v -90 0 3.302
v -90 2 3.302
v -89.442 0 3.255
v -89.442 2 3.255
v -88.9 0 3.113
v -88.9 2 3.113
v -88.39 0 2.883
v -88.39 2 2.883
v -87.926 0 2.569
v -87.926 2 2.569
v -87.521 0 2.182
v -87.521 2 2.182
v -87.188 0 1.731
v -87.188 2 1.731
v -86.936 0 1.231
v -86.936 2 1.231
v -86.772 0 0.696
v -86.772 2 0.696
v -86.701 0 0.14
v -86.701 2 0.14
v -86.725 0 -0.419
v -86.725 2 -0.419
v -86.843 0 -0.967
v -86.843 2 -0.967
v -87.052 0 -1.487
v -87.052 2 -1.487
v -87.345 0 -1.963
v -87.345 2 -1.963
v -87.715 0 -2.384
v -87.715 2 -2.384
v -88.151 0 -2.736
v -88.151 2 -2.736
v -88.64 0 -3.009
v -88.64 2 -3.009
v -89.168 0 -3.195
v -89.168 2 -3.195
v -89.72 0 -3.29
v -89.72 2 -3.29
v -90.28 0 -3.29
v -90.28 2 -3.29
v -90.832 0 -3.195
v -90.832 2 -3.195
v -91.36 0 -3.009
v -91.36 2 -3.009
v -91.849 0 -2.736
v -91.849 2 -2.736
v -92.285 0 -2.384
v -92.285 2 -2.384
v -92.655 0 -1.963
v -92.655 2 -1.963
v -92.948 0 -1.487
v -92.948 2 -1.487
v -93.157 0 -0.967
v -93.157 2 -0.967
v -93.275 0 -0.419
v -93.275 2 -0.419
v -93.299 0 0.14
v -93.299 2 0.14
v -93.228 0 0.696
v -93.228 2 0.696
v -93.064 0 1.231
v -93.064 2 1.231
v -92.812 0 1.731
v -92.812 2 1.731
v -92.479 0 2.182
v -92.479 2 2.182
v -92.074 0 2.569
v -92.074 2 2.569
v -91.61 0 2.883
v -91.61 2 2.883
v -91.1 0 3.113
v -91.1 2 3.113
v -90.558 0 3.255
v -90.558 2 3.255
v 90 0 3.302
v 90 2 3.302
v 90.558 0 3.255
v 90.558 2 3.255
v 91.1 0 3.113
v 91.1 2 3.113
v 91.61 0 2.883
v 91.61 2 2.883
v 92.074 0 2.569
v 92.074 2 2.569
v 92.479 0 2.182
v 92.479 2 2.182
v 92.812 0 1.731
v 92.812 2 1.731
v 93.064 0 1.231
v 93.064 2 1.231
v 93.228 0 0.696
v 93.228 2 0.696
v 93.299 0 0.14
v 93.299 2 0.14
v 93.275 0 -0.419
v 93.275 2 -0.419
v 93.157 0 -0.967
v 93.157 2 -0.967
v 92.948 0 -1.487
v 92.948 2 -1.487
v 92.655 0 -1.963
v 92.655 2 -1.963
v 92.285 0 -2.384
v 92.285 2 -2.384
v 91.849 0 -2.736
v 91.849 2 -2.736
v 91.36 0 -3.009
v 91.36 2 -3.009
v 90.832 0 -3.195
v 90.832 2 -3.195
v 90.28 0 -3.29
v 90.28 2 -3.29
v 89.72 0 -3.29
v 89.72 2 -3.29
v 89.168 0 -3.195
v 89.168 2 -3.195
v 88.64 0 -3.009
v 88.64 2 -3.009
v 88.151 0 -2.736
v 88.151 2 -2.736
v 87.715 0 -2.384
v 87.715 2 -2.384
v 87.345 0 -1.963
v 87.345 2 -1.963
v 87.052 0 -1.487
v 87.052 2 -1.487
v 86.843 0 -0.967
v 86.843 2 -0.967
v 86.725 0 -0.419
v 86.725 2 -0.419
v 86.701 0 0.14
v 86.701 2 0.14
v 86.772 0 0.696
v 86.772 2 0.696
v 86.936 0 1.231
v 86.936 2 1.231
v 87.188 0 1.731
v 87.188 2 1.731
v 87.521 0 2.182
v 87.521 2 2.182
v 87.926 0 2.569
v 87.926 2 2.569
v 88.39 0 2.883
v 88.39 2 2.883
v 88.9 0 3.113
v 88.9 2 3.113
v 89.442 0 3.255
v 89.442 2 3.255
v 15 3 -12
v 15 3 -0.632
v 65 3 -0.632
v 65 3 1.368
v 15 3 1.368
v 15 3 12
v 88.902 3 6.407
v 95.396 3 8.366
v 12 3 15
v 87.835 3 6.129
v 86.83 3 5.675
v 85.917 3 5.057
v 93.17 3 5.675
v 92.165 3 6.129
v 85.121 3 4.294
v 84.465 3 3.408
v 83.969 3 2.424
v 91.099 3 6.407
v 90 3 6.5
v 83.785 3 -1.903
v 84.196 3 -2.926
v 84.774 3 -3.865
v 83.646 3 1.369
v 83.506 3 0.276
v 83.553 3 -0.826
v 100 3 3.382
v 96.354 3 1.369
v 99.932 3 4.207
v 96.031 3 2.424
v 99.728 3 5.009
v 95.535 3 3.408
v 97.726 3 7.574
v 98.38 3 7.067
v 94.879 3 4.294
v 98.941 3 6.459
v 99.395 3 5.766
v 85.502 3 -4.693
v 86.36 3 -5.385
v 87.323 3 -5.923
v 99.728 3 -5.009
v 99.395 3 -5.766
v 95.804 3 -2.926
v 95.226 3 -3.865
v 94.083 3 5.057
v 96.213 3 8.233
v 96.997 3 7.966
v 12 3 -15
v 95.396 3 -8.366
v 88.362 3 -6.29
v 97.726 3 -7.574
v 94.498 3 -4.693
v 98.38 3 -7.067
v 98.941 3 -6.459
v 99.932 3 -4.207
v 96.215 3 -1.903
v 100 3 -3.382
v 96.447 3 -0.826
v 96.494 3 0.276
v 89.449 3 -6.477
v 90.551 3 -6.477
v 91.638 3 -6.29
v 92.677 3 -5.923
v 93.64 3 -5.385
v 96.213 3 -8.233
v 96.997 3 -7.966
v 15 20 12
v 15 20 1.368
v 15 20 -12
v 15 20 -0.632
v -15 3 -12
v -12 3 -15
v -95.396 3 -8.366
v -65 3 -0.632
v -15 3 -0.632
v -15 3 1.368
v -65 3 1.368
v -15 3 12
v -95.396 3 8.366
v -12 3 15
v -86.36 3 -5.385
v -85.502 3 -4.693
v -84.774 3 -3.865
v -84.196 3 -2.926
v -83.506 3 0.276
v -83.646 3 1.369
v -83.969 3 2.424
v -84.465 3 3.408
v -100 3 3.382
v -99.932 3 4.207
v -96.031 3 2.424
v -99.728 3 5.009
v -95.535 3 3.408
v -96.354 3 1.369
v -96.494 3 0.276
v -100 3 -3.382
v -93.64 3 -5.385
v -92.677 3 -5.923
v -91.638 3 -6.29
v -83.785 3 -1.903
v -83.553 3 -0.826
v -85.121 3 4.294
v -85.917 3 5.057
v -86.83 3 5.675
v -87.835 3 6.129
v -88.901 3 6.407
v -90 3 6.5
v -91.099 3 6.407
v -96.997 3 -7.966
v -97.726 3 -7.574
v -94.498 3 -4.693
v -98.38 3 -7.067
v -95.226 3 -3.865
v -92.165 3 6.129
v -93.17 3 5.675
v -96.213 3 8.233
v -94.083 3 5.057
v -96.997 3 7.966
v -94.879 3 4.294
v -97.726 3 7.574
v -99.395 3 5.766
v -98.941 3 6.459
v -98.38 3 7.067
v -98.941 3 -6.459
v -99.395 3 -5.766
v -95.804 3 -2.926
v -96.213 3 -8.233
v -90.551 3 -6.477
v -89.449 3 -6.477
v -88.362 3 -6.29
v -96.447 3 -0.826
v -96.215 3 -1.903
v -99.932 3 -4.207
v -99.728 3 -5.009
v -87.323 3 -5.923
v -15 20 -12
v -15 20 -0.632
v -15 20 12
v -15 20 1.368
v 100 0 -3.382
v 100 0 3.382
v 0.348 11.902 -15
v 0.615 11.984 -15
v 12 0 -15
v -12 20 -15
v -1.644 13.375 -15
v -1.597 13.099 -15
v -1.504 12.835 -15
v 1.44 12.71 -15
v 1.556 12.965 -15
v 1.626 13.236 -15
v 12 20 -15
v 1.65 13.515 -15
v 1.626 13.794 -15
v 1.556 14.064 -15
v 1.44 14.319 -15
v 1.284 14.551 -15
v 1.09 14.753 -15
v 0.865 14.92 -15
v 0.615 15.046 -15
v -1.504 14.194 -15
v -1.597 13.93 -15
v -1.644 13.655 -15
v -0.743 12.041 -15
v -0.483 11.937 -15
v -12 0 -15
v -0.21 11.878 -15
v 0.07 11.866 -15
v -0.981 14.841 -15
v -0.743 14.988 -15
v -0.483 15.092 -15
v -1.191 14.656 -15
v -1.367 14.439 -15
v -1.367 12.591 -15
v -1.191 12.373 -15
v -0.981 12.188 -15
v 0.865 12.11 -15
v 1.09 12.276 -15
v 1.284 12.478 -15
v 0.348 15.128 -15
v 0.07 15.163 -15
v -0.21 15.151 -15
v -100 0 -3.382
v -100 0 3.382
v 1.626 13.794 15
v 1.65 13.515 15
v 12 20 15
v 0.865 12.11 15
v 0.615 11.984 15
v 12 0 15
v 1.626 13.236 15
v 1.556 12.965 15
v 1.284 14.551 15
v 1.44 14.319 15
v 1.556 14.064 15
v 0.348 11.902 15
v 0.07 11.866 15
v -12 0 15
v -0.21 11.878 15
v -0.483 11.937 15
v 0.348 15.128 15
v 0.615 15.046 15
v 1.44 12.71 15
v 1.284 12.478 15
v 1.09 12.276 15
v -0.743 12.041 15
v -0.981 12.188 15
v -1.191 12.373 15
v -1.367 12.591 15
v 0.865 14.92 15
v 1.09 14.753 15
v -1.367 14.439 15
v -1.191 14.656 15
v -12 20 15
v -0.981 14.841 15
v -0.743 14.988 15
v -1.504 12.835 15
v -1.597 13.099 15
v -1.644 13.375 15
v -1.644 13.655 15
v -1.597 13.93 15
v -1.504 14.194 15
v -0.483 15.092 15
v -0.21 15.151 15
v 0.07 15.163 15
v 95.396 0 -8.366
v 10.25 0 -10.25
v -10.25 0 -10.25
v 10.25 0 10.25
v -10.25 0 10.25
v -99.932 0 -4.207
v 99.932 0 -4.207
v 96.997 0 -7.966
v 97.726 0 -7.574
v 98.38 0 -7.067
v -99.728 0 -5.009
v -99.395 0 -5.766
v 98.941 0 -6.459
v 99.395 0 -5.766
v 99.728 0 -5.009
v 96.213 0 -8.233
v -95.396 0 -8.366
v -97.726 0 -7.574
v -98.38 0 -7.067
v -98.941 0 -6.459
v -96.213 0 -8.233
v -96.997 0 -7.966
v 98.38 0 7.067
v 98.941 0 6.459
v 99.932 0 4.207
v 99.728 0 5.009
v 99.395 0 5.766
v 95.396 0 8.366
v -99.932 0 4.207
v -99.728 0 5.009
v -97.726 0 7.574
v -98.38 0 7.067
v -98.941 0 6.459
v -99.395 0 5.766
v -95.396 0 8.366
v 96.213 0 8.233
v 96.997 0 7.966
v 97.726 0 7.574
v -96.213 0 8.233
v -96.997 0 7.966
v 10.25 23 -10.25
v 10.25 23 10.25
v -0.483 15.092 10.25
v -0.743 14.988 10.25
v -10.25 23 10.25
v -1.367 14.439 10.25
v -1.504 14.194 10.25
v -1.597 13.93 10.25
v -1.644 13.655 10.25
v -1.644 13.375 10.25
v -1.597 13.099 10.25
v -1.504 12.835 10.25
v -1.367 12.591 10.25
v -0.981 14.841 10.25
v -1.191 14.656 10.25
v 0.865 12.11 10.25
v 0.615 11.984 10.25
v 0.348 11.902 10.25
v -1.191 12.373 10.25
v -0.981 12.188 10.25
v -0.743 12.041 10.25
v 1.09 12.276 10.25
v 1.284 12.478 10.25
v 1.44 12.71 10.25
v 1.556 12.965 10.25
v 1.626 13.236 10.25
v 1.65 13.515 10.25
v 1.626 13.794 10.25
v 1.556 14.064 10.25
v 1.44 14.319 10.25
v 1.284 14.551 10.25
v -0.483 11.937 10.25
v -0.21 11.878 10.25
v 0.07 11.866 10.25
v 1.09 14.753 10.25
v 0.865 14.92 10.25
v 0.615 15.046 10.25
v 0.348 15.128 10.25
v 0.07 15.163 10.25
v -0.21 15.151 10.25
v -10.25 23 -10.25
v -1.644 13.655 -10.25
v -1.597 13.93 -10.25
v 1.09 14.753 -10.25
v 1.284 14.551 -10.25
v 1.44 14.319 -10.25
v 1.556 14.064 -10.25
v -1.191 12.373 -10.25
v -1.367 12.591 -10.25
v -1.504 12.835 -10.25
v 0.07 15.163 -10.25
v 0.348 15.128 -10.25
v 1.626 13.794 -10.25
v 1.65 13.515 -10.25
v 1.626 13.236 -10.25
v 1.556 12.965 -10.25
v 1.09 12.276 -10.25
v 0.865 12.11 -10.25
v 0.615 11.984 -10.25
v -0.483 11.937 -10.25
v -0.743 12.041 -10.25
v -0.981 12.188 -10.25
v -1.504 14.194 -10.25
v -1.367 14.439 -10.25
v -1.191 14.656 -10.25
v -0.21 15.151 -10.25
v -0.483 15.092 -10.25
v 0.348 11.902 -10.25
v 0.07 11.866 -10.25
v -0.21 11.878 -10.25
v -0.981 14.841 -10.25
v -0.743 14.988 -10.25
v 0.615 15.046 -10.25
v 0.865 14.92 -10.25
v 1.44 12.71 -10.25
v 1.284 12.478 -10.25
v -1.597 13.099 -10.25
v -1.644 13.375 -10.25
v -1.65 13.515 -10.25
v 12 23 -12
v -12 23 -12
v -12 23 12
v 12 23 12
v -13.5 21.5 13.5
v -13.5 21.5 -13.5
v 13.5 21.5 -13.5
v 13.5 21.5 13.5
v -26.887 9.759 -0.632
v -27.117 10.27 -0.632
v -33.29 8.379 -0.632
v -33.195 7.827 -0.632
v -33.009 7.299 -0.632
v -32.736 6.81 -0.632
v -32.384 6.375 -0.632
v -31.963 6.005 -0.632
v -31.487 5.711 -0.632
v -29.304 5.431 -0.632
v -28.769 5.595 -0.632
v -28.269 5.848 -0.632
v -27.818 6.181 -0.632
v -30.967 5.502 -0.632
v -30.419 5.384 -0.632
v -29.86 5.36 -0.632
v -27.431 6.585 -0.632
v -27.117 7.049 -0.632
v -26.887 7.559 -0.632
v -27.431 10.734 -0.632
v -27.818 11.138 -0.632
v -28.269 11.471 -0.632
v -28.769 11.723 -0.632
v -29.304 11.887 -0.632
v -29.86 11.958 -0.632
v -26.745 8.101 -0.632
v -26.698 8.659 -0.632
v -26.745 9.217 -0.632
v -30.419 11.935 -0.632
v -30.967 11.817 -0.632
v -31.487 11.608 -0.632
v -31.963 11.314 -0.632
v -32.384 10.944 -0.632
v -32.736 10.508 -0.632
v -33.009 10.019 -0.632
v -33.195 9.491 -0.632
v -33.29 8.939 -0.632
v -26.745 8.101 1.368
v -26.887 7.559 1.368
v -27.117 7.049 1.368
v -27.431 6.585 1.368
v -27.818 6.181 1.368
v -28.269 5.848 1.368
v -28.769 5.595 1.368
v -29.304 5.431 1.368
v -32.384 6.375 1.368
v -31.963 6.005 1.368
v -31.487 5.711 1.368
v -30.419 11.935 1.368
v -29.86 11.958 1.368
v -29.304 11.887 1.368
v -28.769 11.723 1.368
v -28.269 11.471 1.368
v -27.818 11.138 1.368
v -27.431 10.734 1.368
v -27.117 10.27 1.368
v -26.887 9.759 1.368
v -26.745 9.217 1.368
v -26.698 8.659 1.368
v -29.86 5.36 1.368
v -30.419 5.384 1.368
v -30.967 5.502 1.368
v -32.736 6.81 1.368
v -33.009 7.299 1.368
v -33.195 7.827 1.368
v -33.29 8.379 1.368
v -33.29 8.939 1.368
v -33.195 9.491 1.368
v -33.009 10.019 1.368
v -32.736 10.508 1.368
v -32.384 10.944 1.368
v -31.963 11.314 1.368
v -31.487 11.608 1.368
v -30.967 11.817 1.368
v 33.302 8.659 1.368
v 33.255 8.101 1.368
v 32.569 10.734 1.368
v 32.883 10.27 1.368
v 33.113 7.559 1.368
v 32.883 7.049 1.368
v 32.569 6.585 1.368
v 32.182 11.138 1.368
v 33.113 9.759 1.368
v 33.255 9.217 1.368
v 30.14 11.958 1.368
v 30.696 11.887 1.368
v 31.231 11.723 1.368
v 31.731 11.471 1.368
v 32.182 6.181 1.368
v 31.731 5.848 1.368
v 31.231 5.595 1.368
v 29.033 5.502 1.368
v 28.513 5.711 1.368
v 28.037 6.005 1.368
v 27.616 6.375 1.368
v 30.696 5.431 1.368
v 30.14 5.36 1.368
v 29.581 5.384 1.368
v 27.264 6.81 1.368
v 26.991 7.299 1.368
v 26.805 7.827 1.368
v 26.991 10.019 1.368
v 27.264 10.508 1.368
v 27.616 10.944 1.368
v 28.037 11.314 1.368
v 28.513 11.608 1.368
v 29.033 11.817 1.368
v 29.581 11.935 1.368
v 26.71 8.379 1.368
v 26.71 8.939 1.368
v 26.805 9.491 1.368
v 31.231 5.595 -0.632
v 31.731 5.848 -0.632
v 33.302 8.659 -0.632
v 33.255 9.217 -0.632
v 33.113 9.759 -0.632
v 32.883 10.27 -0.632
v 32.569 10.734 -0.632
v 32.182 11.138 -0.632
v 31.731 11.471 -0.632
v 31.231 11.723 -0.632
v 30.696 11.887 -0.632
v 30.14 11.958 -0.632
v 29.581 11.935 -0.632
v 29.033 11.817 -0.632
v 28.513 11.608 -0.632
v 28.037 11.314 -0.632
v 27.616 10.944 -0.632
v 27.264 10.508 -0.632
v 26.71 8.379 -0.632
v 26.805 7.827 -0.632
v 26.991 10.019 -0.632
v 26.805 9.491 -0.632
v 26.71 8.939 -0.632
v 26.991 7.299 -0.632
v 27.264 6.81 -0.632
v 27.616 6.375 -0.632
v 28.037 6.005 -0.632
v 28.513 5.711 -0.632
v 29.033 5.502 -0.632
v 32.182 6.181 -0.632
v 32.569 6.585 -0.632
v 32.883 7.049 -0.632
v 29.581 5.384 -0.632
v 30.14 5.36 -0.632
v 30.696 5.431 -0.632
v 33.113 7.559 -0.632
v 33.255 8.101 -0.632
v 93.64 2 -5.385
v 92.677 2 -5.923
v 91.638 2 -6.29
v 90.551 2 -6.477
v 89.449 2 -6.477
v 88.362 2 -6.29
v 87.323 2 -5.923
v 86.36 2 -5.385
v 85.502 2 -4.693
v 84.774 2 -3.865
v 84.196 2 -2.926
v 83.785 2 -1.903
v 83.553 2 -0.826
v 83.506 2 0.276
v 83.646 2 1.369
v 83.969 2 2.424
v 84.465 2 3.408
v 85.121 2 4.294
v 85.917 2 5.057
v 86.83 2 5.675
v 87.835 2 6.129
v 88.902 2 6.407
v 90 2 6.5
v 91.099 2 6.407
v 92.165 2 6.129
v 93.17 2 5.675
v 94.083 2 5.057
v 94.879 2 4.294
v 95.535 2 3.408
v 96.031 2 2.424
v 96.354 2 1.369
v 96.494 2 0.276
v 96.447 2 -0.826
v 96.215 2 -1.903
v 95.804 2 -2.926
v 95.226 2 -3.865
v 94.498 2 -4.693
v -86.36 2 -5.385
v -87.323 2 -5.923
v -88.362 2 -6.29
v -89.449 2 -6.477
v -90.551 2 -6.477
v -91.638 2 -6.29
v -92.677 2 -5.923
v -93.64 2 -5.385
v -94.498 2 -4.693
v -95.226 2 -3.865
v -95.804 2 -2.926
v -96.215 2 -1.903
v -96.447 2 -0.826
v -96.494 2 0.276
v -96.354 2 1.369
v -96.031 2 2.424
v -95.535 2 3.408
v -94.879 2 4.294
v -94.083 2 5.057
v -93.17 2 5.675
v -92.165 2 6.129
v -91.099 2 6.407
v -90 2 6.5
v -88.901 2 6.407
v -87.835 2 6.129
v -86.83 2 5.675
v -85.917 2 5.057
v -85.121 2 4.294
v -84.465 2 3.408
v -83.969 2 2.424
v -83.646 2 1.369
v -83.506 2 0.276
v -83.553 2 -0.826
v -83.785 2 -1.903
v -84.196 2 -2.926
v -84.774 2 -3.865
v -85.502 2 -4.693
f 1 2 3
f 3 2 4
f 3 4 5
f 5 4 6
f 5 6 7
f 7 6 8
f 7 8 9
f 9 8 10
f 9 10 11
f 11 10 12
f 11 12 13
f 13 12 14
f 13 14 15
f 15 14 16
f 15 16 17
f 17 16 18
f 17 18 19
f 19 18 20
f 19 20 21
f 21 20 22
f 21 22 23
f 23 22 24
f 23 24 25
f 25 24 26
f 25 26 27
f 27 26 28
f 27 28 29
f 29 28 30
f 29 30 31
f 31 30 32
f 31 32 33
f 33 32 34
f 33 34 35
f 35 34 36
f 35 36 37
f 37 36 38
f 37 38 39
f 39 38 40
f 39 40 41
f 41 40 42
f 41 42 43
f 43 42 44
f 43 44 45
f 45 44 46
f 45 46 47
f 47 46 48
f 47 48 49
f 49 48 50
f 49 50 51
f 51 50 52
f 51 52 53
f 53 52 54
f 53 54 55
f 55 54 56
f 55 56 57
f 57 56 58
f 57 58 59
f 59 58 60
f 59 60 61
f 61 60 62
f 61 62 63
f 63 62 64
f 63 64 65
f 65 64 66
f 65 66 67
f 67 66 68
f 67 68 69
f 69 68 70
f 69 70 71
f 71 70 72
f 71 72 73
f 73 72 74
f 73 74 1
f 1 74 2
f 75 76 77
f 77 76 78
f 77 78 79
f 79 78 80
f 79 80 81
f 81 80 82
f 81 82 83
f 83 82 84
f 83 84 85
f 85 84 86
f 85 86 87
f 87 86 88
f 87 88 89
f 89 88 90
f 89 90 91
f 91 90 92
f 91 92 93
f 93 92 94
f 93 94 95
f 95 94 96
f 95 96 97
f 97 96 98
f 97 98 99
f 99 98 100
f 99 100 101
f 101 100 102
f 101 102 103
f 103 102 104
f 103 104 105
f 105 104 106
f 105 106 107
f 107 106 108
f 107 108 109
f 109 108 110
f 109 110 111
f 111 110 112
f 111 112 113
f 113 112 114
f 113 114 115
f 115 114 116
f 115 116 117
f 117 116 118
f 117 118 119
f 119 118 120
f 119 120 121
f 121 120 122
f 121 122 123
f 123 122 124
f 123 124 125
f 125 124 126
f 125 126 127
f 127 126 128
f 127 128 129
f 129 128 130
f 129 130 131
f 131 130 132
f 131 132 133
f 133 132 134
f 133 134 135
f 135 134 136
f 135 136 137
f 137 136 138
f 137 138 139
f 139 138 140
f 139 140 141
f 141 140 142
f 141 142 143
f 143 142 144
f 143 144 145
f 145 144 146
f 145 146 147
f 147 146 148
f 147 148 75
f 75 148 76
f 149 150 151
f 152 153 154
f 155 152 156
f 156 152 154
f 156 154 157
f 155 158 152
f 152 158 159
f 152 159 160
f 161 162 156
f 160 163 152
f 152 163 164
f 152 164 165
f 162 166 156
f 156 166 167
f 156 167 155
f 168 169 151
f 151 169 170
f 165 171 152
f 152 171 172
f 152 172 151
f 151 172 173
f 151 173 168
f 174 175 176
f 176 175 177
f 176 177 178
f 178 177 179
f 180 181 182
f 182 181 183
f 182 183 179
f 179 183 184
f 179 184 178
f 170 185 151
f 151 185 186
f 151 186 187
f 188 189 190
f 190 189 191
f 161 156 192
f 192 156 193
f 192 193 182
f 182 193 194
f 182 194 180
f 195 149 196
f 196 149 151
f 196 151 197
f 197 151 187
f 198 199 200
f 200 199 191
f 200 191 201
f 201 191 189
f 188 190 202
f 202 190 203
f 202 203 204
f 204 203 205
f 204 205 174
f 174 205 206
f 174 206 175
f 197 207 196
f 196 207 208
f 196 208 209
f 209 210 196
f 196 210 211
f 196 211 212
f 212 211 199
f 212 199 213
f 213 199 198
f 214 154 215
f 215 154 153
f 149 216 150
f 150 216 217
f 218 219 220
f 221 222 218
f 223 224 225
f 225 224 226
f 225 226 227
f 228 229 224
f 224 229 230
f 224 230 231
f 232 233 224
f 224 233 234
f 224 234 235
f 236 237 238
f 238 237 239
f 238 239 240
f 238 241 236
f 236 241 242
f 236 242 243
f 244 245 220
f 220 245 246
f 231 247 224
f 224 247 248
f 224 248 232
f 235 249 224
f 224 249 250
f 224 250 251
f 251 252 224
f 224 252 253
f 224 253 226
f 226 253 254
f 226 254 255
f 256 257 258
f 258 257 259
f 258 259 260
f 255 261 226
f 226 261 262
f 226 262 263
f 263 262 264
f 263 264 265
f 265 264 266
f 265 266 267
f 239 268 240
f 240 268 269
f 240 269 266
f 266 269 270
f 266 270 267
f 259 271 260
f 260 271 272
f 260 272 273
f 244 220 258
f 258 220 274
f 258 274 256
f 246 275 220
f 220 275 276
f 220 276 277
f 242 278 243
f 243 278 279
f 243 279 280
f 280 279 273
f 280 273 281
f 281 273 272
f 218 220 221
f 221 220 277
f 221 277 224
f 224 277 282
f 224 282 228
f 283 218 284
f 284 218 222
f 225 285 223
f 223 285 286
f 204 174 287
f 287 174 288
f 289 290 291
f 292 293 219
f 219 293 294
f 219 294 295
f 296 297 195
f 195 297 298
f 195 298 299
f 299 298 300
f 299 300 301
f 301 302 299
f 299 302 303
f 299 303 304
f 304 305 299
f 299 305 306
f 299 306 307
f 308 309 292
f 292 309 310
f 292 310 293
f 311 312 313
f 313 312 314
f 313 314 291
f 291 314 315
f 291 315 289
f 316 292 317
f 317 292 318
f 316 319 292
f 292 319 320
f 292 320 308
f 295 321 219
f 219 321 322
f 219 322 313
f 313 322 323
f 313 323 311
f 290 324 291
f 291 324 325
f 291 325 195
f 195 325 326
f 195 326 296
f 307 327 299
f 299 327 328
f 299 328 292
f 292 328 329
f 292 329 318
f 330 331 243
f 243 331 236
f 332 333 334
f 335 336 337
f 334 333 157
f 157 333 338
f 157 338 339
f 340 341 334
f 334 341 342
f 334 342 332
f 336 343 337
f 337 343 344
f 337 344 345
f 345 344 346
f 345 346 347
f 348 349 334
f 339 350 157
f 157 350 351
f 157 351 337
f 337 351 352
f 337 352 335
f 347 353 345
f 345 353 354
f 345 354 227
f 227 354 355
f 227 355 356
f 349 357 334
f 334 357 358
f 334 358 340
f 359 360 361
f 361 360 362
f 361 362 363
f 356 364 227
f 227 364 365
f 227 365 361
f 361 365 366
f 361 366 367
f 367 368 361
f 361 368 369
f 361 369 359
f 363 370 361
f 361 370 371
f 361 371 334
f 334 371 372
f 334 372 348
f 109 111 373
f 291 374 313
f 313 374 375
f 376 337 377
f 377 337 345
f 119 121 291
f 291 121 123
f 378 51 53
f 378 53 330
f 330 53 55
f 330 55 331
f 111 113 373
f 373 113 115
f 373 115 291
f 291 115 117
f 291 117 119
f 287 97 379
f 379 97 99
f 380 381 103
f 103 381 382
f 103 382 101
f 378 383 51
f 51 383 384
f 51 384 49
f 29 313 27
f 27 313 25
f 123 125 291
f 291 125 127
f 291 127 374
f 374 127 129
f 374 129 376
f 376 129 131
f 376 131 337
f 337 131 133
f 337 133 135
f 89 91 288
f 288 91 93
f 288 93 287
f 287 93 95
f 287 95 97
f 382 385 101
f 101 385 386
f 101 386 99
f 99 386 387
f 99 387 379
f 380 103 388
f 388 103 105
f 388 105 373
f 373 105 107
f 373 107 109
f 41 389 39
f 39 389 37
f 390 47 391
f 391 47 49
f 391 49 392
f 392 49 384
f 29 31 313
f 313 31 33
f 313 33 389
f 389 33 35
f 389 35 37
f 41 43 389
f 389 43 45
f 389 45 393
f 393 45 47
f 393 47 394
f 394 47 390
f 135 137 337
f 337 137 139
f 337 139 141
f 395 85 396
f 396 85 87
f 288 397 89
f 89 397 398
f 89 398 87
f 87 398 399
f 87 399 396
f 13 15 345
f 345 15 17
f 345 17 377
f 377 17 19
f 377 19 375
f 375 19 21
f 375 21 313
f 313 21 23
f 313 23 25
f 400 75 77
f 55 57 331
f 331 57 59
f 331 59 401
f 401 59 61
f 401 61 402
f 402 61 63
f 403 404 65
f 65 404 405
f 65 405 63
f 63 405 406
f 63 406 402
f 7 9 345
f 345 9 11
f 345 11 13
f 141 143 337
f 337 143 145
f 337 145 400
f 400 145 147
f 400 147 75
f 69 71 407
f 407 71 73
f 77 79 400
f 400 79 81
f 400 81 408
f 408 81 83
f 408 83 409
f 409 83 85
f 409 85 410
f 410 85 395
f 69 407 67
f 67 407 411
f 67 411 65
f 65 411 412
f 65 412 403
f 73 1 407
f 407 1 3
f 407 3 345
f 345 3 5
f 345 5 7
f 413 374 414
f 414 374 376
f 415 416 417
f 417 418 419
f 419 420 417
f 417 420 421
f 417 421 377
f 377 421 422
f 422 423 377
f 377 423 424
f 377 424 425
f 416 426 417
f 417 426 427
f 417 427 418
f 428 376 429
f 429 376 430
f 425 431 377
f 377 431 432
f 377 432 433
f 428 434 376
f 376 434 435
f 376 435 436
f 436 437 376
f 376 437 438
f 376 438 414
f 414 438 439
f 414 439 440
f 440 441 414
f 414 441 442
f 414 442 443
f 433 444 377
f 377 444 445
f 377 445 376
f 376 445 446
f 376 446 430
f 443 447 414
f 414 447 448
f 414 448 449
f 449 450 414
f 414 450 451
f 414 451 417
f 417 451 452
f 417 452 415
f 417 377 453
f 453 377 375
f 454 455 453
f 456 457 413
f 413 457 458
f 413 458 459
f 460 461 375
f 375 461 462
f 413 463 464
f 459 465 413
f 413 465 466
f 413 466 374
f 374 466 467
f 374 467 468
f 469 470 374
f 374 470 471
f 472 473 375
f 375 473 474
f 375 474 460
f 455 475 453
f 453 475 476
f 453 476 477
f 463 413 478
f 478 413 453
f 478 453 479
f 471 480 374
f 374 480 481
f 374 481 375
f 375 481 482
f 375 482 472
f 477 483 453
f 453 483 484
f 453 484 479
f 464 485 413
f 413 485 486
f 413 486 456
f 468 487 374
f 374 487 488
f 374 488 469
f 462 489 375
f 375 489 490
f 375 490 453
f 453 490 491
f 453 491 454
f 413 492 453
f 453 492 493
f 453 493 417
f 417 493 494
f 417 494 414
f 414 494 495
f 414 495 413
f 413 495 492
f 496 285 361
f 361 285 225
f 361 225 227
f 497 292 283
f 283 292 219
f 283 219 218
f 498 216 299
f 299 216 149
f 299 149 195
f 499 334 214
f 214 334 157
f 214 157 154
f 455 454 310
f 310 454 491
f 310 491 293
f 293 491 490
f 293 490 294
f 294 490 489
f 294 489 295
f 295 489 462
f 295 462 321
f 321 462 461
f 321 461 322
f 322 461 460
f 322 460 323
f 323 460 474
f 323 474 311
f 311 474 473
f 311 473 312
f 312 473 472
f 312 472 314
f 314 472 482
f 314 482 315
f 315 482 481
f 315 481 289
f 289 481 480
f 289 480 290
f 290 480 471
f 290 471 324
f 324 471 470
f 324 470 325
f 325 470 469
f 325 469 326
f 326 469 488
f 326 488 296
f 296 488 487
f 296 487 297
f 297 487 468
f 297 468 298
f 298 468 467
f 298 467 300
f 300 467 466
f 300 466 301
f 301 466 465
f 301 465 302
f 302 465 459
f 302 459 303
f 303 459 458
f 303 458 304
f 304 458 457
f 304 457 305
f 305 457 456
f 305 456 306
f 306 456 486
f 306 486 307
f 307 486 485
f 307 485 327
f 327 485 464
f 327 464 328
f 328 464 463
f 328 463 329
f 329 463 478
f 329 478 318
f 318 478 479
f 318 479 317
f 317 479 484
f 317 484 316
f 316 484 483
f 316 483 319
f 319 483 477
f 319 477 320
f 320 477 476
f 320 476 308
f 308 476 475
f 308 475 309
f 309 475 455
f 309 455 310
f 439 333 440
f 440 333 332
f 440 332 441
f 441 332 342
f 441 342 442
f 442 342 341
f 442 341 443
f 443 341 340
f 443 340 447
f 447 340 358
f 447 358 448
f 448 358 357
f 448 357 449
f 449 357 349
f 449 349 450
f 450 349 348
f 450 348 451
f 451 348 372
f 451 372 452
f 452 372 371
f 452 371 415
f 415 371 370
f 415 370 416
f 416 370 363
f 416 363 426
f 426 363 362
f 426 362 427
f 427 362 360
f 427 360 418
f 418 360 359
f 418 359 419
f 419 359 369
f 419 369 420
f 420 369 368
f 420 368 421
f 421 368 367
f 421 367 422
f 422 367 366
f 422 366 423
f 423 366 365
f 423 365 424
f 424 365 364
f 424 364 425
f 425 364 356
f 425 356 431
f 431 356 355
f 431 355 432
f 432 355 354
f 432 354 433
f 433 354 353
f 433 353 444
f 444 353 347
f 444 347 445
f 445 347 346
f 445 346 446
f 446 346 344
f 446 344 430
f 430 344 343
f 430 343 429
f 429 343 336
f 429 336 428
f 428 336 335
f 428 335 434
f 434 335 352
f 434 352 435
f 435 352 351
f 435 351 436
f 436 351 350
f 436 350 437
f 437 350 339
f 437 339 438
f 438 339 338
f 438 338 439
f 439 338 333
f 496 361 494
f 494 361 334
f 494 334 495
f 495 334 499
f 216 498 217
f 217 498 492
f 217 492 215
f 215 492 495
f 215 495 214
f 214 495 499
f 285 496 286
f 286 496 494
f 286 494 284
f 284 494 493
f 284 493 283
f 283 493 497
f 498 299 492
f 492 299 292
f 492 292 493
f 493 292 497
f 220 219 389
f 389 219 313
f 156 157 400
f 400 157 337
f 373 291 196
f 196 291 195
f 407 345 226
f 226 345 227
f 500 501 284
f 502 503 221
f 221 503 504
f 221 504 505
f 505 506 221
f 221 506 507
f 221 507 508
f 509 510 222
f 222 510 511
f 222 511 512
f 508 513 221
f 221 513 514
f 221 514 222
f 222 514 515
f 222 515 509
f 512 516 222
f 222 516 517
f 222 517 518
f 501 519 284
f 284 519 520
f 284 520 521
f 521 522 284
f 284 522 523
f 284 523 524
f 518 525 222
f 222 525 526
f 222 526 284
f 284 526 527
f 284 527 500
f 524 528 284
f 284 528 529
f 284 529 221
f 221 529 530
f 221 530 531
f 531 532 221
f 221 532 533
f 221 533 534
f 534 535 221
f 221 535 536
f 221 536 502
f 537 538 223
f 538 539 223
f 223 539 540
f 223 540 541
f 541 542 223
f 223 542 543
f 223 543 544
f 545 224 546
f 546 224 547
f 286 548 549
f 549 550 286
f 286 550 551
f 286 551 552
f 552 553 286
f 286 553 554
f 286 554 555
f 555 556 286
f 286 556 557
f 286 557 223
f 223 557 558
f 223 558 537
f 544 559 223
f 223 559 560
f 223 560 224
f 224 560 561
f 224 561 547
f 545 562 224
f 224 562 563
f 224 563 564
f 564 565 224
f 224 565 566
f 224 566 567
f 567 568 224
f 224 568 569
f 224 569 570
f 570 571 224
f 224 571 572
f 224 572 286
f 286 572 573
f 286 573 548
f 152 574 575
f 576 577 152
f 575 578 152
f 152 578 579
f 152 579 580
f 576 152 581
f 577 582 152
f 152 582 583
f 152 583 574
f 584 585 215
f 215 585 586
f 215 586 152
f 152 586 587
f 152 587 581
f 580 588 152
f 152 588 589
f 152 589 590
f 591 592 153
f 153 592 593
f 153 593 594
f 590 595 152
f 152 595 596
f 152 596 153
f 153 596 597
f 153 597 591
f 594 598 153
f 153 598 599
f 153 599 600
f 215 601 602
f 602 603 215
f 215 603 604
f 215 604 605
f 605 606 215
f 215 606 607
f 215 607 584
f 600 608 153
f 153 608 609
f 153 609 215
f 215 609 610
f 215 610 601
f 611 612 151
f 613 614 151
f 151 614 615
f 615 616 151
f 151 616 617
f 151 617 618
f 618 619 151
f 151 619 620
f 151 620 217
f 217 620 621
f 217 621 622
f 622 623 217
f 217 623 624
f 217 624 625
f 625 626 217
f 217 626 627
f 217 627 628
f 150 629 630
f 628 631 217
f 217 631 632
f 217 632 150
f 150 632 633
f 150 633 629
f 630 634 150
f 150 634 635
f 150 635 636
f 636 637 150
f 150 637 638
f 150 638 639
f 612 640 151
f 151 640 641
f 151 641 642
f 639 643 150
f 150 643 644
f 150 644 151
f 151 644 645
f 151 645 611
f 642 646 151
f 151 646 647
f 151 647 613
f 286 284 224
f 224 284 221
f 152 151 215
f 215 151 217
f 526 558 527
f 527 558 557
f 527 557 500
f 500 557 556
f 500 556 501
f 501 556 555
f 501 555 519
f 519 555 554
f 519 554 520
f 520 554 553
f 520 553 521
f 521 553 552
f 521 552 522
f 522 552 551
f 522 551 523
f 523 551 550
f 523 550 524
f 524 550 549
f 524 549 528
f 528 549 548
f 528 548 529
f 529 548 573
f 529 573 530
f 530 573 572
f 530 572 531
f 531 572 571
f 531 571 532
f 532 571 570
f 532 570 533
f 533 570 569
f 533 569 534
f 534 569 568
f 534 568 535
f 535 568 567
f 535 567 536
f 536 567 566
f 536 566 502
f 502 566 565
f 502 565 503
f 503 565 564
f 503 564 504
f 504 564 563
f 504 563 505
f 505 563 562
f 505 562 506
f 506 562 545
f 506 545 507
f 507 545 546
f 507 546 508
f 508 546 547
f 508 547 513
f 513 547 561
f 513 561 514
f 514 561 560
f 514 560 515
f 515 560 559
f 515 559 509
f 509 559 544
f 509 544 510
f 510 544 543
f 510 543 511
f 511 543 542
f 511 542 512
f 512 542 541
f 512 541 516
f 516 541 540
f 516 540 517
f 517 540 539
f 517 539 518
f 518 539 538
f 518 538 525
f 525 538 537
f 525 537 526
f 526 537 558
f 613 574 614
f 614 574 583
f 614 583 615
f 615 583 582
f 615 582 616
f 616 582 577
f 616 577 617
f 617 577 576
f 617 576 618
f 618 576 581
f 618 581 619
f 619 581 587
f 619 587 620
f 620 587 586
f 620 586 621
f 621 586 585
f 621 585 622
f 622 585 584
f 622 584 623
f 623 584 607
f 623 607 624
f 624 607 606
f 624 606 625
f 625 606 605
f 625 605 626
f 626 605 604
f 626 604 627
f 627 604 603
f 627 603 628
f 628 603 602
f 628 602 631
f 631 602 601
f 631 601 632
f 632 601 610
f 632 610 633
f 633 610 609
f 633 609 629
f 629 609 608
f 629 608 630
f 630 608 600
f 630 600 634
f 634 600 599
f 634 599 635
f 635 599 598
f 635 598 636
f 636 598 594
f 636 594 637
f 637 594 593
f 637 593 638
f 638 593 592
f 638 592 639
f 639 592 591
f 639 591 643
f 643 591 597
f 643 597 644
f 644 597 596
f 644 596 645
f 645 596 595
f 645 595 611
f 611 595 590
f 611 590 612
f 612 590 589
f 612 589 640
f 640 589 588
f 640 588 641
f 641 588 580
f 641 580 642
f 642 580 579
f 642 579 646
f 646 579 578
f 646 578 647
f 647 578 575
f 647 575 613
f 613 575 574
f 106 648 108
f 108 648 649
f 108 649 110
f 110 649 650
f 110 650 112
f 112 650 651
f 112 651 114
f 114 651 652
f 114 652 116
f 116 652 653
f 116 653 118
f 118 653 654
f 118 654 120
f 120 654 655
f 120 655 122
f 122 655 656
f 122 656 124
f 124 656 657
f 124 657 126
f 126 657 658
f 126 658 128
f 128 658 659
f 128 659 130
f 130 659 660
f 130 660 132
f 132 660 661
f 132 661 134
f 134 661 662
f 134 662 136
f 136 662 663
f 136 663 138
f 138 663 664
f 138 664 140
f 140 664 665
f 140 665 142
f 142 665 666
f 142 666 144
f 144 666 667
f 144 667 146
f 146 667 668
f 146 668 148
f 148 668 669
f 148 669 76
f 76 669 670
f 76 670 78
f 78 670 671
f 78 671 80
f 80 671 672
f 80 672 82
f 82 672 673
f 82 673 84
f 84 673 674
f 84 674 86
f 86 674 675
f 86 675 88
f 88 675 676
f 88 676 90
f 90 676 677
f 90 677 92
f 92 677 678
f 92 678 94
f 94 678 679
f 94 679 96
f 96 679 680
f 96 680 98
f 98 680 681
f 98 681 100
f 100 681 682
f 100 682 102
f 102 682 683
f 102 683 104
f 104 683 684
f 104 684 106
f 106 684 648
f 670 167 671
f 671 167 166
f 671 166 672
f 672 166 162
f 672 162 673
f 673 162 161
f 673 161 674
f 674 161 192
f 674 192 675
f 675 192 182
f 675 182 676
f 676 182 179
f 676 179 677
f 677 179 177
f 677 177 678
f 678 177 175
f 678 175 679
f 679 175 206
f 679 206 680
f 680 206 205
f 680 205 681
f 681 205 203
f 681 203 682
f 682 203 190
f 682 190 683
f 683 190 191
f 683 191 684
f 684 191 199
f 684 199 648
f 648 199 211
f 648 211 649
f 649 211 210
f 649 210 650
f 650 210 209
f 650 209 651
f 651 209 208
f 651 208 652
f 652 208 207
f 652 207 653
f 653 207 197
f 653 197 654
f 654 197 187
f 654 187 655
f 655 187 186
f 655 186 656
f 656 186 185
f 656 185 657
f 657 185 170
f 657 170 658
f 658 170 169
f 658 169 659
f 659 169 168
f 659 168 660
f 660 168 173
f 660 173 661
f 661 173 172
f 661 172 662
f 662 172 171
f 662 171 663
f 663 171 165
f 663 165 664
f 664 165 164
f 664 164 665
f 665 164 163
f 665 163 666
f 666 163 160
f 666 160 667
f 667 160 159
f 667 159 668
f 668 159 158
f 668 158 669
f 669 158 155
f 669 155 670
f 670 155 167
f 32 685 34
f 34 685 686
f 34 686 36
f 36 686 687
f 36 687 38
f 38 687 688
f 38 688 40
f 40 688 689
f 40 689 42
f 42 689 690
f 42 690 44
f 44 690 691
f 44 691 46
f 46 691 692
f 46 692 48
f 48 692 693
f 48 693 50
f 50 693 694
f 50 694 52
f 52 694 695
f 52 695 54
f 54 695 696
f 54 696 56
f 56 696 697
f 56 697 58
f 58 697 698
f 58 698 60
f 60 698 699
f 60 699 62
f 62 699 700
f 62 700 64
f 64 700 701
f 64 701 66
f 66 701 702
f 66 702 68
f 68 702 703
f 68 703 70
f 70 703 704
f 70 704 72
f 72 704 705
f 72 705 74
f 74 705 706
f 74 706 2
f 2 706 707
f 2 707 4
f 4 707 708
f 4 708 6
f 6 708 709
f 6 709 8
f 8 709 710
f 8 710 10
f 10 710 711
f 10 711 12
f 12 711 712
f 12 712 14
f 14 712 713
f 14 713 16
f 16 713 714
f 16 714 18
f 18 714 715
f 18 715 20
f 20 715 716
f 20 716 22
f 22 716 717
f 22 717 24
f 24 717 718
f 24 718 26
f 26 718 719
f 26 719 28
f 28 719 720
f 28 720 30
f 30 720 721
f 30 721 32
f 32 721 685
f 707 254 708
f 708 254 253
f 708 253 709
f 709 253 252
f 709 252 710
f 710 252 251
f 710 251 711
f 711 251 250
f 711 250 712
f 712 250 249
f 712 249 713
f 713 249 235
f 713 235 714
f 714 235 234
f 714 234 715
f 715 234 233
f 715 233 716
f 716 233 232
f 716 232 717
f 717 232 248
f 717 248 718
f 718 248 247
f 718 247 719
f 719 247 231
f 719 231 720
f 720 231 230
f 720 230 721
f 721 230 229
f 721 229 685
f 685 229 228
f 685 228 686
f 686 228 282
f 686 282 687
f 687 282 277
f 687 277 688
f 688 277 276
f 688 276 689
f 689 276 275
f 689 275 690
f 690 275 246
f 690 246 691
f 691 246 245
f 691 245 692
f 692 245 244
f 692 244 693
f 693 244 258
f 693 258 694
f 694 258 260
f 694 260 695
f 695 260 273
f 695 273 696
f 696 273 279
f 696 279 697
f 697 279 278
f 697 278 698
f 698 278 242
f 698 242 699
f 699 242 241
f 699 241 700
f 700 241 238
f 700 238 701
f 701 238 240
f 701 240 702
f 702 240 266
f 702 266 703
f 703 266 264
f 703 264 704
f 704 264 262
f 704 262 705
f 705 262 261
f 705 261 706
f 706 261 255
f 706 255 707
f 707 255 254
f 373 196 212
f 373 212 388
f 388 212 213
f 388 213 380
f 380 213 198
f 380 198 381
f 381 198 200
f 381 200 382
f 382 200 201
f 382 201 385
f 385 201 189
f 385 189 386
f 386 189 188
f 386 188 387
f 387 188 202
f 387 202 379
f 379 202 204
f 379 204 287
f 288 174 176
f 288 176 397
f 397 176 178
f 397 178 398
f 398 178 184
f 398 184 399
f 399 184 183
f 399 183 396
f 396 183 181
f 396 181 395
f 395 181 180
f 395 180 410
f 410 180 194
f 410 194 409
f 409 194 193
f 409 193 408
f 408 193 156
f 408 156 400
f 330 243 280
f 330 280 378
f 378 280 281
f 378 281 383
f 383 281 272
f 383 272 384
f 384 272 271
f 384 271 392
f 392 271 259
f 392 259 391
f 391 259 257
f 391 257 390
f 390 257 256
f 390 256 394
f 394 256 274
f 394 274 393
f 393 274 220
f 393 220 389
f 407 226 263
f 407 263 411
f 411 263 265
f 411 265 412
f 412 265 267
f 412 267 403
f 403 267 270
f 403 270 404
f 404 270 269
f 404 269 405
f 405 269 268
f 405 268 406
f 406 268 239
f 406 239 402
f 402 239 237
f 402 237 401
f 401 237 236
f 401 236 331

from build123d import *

# Parameters (mm, degrees)
SKETCH1_W           = 200
SKETCH1_H           = 30
BOSS_EXTRUDE1_DEPTH = 3
SKETCH2_W           = 20.5
SKETCH2_H           = 20.5
CUT_EXTRUDE1_DEPTH  = 3
SKETCH3_W           = 30
SKETCH3_H           = 30
SKETCH3_W_2         = 20.5
SKETCH3_H_2         = 20.5
BOSS_EXTRUDE2_DEPTH = 20
CHAMFER1_SIZE       = 3
SKETCH4_R           = 1.65
CUT_EXTRUDE2_DEPTH  = 40
CHAMFER2_SIZE       = 3
CUT_EXTRUDE3_DEPTH  = 40
SKETCH6_W           = 50
SKETCH6_H           = 2
BOSS_EXTRUDE3_DEPTH = 17
CUT_EXTRUDE4_DEPTH  = 17
SKETCH8_R           = 3.302
CUT_EXTRUDE5_DEPTH  = 17
SKETCH9_R           = 3.302
CUT_EXTRUDE6_DEPTH  = 17
SKETCH10_R          = 6.5
CUT_EXTRUDE7_DEPTH  = 1
SKETCH11_R          = 6.5
CUT_EXTRUDE8_DEPTH  = 1
FILLET1_R           = 5


with BuildPart() as part:
    # Sketch1 → Boss-Extrude1 (new body)
    with BuildSketch(Plane(origin=(0, 0, 0), x_dir=(1, 0, 0), z_dir=(0, 1, 0))):
        Rectangle(SKETCH1_W, SKETCH1_H)
    extrude(amount=BOSS_EXTRUDE1_DEPTH)

    # Sketch2 → Cut-Extrude1 (cut)
    with BuildSketch(Plane(origin=(0, 3, 0), x_dir=(1, 0, 0), z_dir=(0, 1, 0))):
        Rectangle(SKETCH2_W, SKETCH2_H)
    extrude(amount=-CUT_EXTRUDE1_DEPTH, mode=Mode.SUBTRACT)

    # Sketch3 → Boss-Extrude2 (add)
    with BuildSketch(Plane(origin=(0, 3, 0), x_dir=(1, 0, 0), z_dir=(0, 1, 0))):
        Rectangle(SKETCH3_W, SKETCH3_H)
        Rectangle(SKETCH3_W_2, SKETCH3_H_2, mode=Mode.SUBTRACT)
    extrude(amount=BOSS_EXTRUDE2_DEPTH)

    # Chamfer1
    chamfer1_edges = [part.edges().sort_by_distance(p)[0] for p in [
        (15, 13, 15),
        (15, 13, -15),
        (-15, 13, -15),
        (-15, 13, 15),
    ]]
    chamfer(chamfer1_edges, length=CHAMFER1_SIZE)

    # Sketch4 → Cut-Extrude2 (cut)
    with BuildSketch(Plane.XY.offset(15)):
        with Locations((0, 13.514664597)):
            Circle(SKETCH4_R)
    extrude(amount=-CUT_EXTRUDE2_DEPTH, mode=Mode.SUBTRACT)

    # Chamfer2
    # the kernel refuses this chamfer: 3 mm, written as the material it takes off along each edge
    with BuildSketch(Plane(origin=(19.715048964, 23, -15), x_dir=(0, -0.9996219169112968, -0.02749587661058619), z_dir=(-1, 0, 0))) as chamfer2_piece_1:
        Polygon((CHAMFER2_SIZE * 0.999621916911, CHAMFER2_SIZE * 0.0274958766106), (-CHAMFER2_SIZE * 0.0274958766106, CHAMFER2_SIZE * 0.999621916911), (0, 0), align=None)
    extrude(amount=39.430097928, mode=Mode.SUBTRACT)
    with BuildSketch(Plane(origin=(15, 23, 19.715048964), x_dir=(-0.9996219169112968, 0.02749587661058678, 0), z_dir=(0, 0, -1)), Plane(origin=(-19.715048964, 23, 15), x_dir=(0, 0.02749587661058678, -0.9996219169112968), z_dir=(1, 0, 0)), Plane(origin=(-15, 23, -19.715048964), x_dir=(0.9996219169112968, 0.02749587661058678, 0), z_dir=(0, 0, 1))) as chamfer2_piece_2:
        Polygon((CHAMFER2_SIZE * 0.999621916911, -CHAMFER2_SIZE * 0.0274958766106), (-CHAMFER2_SIZE * 0.0274958766106, -CHAMFER2_SIZE * 0.999621916911), (0, 0), align=None)
    extrude(amount=39.430097928, mode=Mode.SUBTRACT)

    # Sketch5 → Cut-Extrude3 (cut)
    with BuildSketch(Plane(origin=(0, 3, 0), x_dir=(1, 0, 0), z_dir=(0, 1, 0))):
        Polygon((-12, 15), (-100, 8), (-100, 15), align=None)
        Polygon((-12, -15), (-100, -15), (-100, -8), align=None)
        Polygon((12, 15), (100, 15), (100, 8), align=None)
        Polygon((12, -15), (100, -15), (100, -8), align=None)
    extrude(amount=-CUT_EXTRUDE3_DEPTH, mode=Mode.SUBTRACT)

    # Sketch6 → Boss-Extrude3 (add)
    with BuildSketch(Plane(origin=(0, 3, 0), x_dir=(1, 0, 0), z_dir=(0, 1, 0))):
        with Locations((-40, -0.368394866)):
            Rectangle(SKETCH6_W, SKETCH6_H)
        with Locations((40, -0.368394866)):
            Rectangle(SKETCH6_W, SKETCH6_H)
    extrude(amount=BOSS_EXTRUDE3_DEPTH)

    # Sketch7 → Cut-Extrude4 (cut)
    with BuildSketch(Plane.XY.offset(1.368394866)):
        Polygon((-15, 20), (-65, 3), (-71.38859119, 29.520775186), align=None)
        Polygon((15, 20), (65, 3), (84.413316585, 43.135600108), align=None)
    extrude(amount=-CUT_EXTRUDE4_DEPTH, mode=Mode.SUBTRACT)

    # Sketch8 → Cut-Extrude5 (cut)
    with BuildSketch(Plane.XY.offset(1.368394866)):
        with Locations((-30, 8.659349902)):
            Circle(SKETCH8_R)
        with Locations((30, 8.659349902)):
            Circle(SKETCH8_R)
    extrude(amount=-CUT_EXTRUDE5_DEPTH, mode=Mode.SUBTRACT)

    # Sketch9 → Cut-Extrude6 (cut)
    with BuildSketch(Plane(origin=(0, 3, 0), x_dir=(1, 0, 0), z_dir=(0, 1, 0))):
        with Locations(Location((-90, 0, 0), (0, 0, 270))):
            Circle(SKETCH9_R)
        with Locations(Location((90, 0, 0), (0, 0, 270))):
            Circle(SKETCH9_R)
    extrude(amount=-CUT_EXTRUDE6_DEPTH, mode=Mode.SUBTRACT)

    # Sketch10 → Cut-Extrude7 (cut)
    with BuildSketch(Plane(origin=(0, 3, 0), x_dir=(1, 0, 0), z_dir=(0, 1, 0))):
        with Locations(Location((90, 0, 0), (0, 0, 270))):
            Circle(SKETCH10_R)
    extrude(amount=-CUT_EXTRUDE7_DEPTH, mode=Mode.SUBTRACT)

    # Sketch11 → Cut-Extrude8 (cut)
    with BuildSketch(Plane(origin=(0, 3, 0), x_dir=(1, 0, 0), z_dir=(0, 1, 0))):
        with Locations(Location((-90, 0, 0), (0, 0, 270))):
            Circle(SKETCH11_R)
    extrude(amount=-CUT_EXTRUDE8_DEPTH, mode=Mode.SUBTRACT)

    # Fillet1
    fillet1_edges = [part.edges().sort_by_distance(p)[0] for p in [
        (-100, 1.5, -8),
        (-100, 1.5, 8),
        (100, 1.5, -8),
        (100, 1.5, 8),
    ]]
    fillet(fillet1_edges, radius=FILLET1_R)


solid = part.part
